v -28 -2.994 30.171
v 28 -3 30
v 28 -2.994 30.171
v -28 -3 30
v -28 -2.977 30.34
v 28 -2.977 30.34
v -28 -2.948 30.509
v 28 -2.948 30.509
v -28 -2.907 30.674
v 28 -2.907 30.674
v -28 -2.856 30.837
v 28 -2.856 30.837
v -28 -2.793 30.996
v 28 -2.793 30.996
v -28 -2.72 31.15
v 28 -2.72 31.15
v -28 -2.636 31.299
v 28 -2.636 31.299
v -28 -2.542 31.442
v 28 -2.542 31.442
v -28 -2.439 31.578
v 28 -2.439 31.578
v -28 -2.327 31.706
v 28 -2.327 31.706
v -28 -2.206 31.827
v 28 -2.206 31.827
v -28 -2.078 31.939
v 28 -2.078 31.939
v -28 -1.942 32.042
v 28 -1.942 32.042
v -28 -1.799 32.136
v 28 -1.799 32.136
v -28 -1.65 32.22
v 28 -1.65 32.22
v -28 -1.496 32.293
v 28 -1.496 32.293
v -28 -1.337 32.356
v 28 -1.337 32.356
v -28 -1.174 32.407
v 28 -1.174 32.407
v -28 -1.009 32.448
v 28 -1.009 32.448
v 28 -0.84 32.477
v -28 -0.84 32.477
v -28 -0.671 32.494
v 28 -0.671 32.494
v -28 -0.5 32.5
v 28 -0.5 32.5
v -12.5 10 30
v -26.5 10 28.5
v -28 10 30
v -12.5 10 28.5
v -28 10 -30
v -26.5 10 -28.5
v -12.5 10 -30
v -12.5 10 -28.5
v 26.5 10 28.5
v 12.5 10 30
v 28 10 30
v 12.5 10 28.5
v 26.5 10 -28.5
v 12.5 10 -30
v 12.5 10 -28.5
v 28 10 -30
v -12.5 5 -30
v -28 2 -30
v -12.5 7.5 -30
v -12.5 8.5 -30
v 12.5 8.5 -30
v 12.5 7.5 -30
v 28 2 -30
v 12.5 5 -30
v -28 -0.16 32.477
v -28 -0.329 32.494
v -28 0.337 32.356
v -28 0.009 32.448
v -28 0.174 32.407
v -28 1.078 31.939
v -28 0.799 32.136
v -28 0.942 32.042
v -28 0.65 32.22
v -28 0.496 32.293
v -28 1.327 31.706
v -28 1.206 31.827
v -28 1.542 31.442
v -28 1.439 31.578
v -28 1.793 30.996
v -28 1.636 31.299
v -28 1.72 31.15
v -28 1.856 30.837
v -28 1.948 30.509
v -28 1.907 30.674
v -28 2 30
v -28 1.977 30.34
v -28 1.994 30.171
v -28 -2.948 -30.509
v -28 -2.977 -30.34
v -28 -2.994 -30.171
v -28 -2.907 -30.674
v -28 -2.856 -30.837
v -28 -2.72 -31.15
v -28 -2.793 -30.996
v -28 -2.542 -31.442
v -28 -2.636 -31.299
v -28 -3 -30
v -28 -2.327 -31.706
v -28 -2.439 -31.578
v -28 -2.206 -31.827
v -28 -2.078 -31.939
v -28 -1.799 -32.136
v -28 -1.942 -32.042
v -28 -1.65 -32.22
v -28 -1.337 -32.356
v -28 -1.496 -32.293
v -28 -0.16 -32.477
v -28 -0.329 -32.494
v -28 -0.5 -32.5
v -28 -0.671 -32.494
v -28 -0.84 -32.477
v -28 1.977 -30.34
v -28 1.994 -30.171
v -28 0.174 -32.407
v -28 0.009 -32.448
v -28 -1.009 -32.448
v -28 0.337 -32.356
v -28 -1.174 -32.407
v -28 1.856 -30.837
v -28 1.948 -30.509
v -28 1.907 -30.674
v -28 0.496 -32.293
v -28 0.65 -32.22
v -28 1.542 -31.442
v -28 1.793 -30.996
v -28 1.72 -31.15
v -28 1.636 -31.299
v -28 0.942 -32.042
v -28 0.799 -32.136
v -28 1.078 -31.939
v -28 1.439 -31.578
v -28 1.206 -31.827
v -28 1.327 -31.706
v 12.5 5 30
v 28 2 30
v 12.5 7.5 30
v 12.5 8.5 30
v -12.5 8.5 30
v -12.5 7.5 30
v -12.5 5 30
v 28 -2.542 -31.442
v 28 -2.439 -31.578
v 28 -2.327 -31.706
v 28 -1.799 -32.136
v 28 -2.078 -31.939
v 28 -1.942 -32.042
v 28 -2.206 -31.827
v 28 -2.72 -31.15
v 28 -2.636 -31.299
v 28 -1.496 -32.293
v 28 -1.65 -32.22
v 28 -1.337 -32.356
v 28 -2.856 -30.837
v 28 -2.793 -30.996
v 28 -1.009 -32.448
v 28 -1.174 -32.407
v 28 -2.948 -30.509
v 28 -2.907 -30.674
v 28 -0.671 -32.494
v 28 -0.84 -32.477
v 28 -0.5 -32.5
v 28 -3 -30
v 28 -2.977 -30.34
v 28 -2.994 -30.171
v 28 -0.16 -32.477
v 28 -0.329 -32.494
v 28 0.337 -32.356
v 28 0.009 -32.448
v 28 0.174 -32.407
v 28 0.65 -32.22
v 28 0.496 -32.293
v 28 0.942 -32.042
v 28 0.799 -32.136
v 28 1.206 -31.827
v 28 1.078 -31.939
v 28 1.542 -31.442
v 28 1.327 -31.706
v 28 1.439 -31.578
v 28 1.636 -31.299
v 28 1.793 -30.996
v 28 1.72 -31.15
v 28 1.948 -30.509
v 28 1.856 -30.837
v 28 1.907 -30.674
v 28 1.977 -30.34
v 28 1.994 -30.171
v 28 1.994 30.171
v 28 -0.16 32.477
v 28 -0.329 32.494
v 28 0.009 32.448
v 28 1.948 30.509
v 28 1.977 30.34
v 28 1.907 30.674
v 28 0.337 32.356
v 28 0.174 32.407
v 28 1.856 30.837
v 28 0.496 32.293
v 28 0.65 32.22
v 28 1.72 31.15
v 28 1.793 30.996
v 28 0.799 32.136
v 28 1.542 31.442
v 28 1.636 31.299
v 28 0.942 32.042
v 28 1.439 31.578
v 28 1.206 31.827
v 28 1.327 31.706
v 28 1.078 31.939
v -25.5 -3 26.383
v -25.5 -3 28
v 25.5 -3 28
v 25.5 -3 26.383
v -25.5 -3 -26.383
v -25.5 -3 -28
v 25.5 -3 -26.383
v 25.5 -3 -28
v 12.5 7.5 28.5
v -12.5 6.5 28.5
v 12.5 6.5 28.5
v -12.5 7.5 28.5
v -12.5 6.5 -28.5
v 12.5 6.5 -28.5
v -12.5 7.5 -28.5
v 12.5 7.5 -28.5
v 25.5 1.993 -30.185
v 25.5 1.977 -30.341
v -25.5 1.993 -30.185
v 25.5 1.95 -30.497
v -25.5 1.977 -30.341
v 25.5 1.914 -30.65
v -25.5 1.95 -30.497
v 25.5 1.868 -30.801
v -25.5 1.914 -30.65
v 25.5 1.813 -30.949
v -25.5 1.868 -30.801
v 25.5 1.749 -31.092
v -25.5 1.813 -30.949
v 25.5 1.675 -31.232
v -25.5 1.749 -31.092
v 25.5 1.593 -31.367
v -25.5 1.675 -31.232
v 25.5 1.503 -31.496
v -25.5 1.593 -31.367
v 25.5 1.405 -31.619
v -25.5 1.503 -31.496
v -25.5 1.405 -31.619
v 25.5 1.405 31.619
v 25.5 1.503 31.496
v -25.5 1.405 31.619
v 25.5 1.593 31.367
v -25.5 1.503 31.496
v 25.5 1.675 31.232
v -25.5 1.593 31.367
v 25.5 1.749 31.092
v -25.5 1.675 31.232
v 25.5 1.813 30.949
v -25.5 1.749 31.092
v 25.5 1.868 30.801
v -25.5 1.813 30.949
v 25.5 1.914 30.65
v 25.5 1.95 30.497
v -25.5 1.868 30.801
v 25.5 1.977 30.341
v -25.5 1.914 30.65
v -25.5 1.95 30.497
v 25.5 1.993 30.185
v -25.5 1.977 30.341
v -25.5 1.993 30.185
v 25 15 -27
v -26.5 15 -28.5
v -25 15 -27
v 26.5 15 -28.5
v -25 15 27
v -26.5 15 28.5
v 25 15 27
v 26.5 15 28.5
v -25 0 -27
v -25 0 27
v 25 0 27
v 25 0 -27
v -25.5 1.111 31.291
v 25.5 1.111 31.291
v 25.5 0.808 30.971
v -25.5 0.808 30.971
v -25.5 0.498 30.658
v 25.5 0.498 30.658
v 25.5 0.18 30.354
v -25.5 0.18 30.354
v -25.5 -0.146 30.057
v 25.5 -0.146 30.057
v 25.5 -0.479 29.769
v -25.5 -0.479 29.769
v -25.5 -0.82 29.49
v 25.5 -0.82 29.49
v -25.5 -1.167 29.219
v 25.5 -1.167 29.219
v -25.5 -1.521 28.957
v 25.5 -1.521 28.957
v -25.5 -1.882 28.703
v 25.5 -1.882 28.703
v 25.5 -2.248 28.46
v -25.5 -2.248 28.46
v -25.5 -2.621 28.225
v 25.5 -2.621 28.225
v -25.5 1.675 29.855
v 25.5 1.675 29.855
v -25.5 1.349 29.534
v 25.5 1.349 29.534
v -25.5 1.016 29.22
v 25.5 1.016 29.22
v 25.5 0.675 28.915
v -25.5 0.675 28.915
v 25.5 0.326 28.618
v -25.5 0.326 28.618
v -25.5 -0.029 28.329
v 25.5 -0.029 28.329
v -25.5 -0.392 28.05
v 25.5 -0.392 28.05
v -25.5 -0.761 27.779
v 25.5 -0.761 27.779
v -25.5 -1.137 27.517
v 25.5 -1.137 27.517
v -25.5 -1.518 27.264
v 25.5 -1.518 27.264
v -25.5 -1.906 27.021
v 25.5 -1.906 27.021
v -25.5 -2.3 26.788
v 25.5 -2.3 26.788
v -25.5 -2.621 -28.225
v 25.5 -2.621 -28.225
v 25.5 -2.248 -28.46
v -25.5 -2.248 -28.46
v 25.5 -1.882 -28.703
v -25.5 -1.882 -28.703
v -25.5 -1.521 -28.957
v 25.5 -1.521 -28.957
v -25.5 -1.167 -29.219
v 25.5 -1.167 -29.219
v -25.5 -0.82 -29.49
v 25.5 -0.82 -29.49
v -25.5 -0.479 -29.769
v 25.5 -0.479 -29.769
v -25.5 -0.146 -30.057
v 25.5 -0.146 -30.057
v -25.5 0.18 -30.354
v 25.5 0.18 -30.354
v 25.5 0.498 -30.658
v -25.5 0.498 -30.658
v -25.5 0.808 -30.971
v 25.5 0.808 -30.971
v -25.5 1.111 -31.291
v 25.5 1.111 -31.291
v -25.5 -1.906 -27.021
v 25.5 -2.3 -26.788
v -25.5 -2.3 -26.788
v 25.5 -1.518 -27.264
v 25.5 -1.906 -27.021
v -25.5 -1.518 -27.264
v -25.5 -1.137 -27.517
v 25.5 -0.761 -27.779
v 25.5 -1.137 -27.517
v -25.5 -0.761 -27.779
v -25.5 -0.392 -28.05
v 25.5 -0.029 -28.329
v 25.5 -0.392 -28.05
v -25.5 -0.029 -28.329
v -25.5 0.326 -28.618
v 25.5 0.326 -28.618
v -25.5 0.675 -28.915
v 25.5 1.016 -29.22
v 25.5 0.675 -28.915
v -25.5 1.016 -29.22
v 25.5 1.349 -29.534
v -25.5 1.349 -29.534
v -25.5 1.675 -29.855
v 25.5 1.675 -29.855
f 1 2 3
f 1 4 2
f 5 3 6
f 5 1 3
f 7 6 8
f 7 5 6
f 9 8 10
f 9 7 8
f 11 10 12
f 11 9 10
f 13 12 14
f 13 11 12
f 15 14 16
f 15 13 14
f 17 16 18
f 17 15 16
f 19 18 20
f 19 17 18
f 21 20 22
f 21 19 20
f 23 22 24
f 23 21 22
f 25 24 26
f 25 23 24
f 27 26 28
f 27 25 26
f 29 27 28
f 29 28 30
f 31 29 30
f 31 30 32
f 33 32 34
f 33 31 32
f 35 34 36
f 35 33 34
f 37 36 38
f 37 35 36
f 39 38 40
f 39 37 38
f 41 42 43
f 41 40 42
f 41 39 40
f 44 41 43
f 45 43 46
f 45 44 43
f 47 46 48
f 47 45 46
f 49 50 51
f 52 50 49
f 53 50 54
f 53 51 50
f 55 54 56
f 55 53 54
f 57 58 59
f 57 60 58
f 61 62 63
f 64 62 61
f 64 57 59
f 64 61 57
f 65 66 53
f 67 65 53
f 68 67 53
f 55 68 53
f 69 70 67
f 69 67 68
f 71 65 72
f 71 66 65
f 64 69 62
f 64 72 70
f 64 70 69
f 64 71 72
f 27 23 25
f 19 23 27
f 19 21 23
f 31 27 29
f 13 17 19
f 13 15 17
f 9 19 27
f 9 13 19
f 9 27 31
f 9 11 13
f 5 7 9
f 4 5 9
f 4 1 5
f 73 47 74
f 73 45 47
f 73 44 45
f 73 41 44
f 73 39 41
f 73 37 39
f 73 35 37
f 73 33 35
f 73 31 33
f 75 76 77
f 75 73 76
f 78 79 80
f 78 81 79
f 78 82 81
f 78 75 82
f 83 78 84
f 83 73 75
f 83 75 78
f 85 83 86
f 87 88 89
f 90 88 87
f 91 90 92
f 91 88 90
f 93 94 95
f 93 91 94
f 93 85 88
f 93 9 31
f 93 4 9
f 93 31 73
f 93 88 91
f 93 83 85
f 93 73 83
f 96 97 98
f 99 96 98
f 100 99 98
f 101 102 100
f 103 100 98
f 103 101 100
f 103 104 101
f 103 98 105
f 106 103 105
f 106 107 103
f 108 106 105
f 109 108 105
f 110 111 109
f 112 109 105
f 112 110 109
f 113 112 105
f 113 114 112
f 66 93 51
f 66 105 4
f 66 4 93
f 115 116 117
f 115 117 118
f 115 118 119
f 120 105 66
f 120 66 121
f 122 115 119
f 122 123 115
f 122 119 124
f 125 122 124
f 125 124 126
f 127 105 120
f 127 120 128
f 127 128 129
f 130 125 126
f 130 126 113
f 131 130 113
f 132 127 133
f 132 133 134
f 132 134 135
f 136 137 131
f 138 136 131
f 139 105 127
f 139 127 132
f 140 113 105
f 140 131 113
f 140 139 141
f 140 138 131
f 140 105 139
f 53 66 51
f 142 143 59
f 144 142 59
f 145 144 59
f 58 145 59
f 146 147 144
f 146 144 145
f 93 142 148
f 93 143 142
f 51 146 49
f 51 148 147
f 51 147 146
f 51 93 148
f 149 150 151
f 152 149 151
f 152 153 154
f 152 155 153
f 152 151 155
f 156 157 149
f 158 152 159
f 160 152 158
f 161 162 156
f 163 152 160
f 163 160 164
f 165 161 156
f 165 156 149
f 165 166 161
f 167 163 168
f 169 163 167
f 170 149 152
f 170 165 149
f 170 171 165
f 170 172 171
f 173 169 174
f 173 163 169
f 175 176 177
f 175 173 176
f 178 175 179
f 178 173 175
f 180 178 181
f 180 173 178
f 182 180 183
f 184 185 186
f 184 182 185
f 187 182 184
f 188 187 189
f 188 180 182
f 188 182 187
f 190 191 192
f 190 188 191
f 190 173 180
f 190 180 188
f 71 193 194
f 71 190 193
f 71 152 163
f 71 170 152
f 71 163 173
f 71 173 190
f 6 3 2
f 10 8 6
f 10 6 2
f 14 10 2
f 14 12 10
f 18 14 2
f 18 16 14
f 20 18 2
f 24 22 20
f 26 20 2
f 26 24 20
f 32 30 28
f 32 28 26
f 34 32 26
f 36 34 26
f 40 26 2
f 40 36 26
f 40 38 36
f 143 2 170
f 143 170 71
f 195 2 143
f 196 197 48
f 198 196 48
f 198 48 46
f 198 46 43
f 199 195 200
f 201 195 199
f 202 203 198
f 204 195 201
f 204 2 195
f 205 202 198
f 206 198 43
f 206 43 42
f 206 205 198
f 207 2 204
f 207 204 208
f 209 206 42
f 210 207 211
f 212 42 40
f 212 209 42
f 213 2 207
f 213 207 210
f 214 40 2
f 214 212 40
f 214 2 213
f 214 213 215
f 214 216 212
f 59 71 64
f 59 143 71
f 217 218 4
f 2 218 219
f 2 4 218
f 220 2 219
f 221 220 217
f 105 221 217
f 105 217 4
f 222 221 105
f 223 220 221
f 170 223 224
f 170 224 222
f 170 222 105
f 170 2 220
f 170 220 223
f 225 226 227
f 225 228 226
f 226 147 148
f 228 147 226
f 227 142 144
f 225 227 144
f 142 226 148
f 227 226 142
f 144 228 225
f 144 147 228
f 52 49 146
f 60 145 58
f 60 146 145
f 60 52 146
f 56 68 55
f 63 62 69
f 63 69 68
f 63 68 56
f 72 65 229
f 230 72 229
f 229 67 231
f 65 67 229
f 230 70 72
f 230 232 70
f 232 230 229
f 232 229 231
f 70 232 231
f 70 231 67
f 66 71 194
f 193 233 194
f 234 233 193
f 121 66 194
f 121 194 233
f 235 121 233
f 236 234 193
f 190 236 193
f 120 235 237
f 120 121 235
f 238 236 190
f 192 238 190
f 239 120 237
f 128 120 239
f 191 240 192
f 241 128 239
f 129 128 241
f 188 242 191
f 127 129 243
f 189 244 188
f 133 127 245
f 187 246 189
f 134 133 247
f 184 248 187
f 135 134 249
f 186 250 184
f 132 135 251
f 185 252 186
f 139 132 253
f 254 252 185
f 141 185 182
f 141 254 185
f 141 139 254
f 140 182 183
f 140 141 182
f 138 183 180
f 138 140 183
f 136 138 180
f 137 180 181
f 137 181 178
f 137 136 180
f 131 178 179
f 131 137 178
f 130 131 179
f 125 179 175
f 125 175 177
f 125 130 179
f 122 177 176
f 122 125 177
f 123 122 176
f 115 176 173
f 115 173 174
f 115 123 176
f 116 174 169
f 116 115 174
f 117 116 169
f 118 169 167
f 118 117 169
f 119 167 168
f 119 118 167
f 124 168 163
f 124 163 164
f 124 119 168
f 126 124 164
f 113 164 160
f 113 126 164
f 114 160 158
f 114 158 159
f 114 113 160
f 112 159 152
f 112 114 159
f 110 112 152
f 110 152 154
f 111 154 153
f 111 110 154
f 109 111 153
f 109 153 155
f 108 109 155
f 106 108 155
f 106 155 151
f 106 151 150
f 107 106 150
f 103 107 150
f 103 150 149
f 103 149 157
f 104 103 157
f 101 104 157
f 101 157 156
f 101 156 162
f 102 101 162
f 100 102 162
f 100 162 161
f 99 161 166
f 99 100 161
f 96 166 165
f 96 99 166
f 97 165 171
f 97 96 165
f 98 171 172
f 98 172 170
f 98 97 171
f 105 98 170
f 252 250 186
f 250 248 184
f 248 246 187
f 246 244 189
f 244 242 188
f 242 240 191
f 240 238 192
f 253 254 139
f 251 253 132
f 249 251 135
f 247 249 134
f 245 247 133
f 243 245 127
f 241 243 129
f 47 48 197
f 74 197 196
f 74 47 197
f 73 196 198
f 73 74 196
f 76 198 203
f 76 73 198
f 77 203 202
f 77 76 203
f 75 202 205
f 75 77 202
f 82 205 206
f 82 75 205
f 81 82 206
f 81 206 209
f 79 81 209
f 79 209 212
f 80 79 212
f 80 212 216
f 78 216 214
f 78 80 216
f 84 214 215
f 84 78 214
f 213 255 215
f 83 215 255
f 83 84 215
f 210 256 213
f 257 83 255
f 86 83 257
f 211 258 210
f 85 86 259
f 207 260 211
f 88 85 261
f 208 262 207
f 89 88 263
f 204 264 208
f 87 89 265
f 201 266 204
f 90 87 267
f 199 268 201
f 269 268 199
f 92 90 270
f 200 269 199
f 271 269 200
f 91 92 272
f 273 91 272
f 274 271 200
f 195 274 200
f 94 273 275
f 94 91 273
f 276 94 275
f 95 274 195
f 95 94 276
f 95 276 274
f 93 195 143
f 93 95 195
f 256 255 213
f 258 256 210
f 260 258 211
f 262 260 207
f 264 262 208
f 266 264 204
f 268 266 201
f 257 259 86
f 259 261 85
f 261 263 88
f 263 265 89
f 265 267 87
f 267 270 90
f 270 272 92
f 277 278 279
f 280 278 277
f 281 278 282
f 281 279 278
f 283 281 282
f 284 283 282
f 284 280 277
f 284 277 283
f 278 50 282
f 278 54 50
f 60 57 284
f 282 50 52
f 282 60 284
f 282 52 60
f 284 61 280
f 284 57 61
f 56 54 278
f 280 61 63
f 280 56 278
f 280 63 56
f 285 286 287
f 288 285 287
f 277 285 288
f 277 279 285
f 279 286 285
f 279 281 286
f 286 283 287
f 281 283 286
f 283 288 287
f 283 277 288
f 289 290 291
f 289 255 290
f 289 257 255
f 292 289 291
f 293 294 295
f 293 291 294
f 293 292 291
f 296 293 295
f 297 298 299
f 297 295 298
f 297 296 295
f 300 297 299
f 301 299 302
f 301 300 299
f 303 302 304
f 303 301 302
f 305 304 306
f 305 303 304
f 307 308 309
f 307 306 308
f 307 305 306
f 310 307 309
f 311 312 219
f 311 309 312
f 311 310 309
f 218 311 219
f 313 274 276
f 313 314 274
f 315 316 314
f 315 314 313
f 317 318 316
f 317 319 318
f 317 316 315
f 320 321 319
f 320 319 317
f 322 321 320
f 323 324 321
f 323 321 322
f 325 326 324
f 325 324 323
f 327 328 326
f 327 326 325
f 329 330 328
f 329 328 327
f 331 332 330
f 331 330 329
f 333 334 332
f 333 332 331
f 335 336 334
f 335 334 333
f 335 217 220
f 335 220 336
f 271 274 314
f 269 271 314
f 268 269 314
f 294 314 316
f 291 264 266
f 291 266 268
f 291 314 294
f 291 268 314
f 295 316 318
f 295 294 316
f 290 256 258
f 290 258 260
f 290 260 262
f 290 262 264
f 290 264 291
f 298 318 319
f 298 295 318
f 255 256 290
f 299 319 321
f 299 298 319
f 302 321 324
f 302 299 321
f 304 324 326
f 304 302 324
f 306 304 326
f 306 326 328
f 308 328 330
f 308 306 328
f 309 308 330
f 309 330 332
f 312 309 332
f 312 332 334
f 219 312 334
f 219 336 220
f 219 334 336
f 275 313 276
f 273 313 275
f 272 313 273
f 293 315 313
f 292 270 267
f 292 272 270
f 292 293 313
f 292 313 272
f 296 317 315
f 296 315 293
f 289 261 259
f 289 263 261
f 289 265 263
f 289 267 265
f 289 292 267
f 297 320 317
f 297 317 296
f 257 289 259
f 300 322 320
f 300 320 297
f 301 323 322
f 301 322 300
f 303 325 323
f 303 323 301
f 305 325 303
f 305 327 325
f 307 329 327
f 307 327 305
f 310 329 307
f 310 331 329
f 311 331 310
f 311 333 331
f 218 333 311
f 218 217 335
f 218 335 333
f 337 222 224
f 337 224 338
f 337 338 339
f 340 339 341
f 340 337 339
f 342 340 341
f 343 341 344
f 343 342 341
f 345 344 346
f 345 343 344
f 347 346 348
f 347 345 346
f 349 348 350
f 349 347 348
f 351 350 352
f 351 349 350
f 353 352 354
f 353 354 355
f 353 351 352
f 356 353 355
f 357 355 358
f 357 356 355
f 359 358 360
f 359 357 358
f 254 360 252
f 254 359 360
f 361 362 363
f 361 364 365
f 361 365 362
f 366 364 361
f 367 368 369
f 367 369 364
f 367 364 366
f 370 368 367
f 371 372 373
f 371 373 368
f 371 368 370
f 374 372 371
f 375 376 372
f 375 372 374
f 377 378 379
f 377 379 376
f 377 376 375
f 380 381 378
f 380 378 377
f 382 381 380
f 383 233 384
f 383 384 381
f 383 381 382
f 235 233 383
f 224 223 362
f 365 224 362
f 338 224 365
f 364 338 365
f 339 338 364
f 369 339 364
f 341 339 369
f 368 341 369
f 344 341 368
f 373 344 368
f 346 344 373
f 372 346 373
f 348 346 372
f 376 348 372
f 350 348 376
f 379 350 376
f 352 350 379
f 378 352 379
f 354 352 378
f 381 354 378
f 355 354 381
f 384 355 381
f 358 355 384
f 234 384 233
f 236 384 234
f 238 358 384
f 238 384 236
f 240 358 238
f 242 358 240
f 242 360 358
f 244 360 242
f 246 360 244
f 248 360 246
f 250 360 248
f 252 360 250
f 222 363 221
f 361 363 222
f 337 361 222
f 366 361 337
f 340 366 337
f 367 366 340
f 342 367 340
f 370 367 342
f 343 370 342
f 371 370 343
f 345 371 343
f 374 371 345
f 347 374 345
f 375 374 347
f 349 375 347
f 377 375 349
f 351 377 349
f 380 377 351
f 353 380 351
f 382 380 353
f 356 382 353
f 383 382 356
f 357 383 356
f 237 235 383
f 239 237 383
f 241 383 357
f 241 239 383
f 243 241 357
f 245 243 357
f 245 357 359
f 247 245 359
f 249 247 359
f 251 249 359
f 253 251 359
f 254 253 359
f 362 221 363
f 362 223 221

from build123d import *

# Parameters (mm, degrees)
SKETCH1_W                       = 56
SKETCH1_H                       = 60
SKETCH1_W_2                     = 50
SKETCH1_H_2                     = 54
BOSS_EXTRUDE1_DEPTH             = 10
SKETCH2_W                       = 56
SKETCH2_H                       = 60
BOSS_EXTRUDE2_DEPTH             = 3
CUT_EXTRUDE1_DEPTH              = 12.5
BOSS_EXTRUDE4_REACH             = 44.237
BOSS_EXTRUDE4_DIRECTION_2_REACH = 44.237
BOSS_EXTRUDE5_DEPTH             = 25.5
SKETCH7_W                       = 53
SKETCH7_H                       = 57
SKETCH7_W_2                     = 50
SKETCH7_H_2                     = 54
BOSS_EXTRUDE6_DEPTH             = 5


with BuildPart() as part:
    # Sketch1 → Boss-Extrude1 (new body)
    with BuildSketch(Plane(origin=(0, 0, 0), x_dir=(1, 0, 0), z_dir=(0, 1, 0))):
        Rectangle(SKETCH1_W, SKETCH1_H)
        Rectangle(SKETCH1_W_2, SKETCH1_H_2, mode=Mode.SUBTRACT)
    extrude(amount=BOSS_EXTRUDE1_DEPTH)

    # Sketch2 → Boss-Extrude2 (add)
    with BuildSketch(Plane.XZ):
        Rectangle(SKETCH2_W, SKETCH2_H)
    extrude(amount=BOSS_EXTRUDE2_DEPTH)

    # Sketch3 → Cut-Extrude1 (cut, symmetric)
    with BuildSketch(Plane(origin=(0, 0, 0), x_dir=(0, 0, -1), z_dir=(1, 0, 0))):
        Polygon((-28.5, 10), (-31, 10), (-31, 4), (-28.5, 6.5), (-28.5, 7.5), (-30, 7.5), (-30, 8.5), align=None)
    cut_extrude1 = extrude(amount=CUT_EXTRUDE1_DEPTH, both=True, mode=Mode.SUBTRACT)

    # Mirror1: Cut-Extrude1 across plane
    add(cut_extrude1.mirror(Plane.XY), mode=Mode.SUBTRACT)

    # Boss-Extrude4: up to this face of the body (flat: up to its plane)
    boss_extrude4_end = Plane(part.part.faces().sort_by_distance((28, 3.5, 0))[0])
    # Sketch4 → Boss-Extrude4 (add, up to the picked face)
    with BuildSketch(Plane(origin=(0, 0, 0), x_dir=(0, 0, -1), z_dir=(1, 0, 0)), mode=Mode.PRIVATE) as boss_extrude4_sk1:
        with BuildLine():
            Line((30, 2), (30, -3))
            ThreePointArc((30, -3), (32.5, -0.5), (30, 2))
        make_face()
    boss_extrude4_tool1 = split(extrude(boss_extrude4_sk1.sketch, amount=BOSS_EXTRUDE4_REACH, mode=Mode.PRIVATE), bisect_by=boss_extrude4_end, keep=Keep.BOTH, mode=Mode.PRIVATE)
    boss_extrude4 = boss_extrude4_tool1.solids().sort_by(Axis((0, -0.5, -31.061033), (1, 0, 0)))[0]
    add(boss_extrude4)

    # Boss-Extrude4 direction 2: up to this face of the body (flat: up to its plane)
    boss_extrude4_direction_2_end = Plane(part.part.faces().sort_by_distance((-28, 3.5, 0))[0])
    # Sketch4 → Boss-Extrude4 direction 2 (add, up to the picked face)
    with BuildSketch(Plane(origin=(0, 0, 0), x_dir=(0, 0, -1), z_dir=(1, 0, 0)), mode=Mode.PRIVATE) as boss_extrude4_direction_2_sk1:
        with BuildLine():
            Line((30, 2), (30, -3))
            ThreePointArc((30, -3), (32.5, -0.5), (30, 2))
        make_face()
    boss_extrude4_direction_2_tool1 = split(extrude(boss_extrude4_direction_2_sk1.sketch, amount=-BOSS_EXTRUDE4_DIRECTION_2_REACH, mode=Mode.PRIVATE), bisect_by=boss_extrude4_direction_2_end, keep=Keep.BOTH, mode=Mode.PRIVATE)
    boss_extrude4_direction_2 = boss_extrude4_direction_2_tool1.solids().sort_by(Axis((0, -0.5, -31.061033), (-1, 0, 0)))[0]
    add(boss_extrude4_direction_2)

    # Mirror3: Boss-Extrude4, Boss-Extrude4 direction 2 across plane
    add(boss_extrude4.mirror(Plane.XY))
    add(boss_extrude4_direction_2.mirror(Plane.XY))

    # Sketch7 → Boss-Extrude6 (add)
    with BuildSketch(Plane(origin=(0, 10, 0), x_dir=(1, 0, 0), z_dir=(0, 1, 0))):
        Rectangle(SKETCH7_W, SKETCH7_H)
        Rectangle(SKETCH7_W_2, SKETCH7_H_2, mode=Mode.SUBTRACT)
    extrude(amount=BOSS_EXTRUDE6_DEPTH)


with BuildPart() as body_2:
    # Sketch5 → Boss-Extrude5 (new, symmetric)
    with BuildSketch(Plane(origin=(0, 0, 0), x_dir=(0, 0, -1), z_dir=(1, 0, 0))):
        with BuildLine():
            Line((26.787564435, -2.3), (26.383419246, -3))
            Line((26.383419246, -3), (28, -3))
            ThreePointArc((28, -3), (29.996934481, -0.214678652), (32.5, 2.126352177))
            Line((32.5, 2.126352177), (32.5, 3.852866185))
            ThreePointArc((32.5, 3.852866185), (29.29668765, 1.098682153), (26.787564435, -2.3))
        make_face()
    extrude(amount=BOSS_EXTRUDE5_DEPTH, both=True)


with BuildPart() as body_3:
    # Mirror2: mirrored copy
    add(body_2.part.mirror(Plane.XY))


with BuildPart() as part_1:
    add(part.part)

    # Combine1: cut body 2, body 3
    add(body_2.part, mode=Mode.SUBTRACT)
    add(body_3.part, mode=Mode.SUBTRACT)


solid = part_1.part
